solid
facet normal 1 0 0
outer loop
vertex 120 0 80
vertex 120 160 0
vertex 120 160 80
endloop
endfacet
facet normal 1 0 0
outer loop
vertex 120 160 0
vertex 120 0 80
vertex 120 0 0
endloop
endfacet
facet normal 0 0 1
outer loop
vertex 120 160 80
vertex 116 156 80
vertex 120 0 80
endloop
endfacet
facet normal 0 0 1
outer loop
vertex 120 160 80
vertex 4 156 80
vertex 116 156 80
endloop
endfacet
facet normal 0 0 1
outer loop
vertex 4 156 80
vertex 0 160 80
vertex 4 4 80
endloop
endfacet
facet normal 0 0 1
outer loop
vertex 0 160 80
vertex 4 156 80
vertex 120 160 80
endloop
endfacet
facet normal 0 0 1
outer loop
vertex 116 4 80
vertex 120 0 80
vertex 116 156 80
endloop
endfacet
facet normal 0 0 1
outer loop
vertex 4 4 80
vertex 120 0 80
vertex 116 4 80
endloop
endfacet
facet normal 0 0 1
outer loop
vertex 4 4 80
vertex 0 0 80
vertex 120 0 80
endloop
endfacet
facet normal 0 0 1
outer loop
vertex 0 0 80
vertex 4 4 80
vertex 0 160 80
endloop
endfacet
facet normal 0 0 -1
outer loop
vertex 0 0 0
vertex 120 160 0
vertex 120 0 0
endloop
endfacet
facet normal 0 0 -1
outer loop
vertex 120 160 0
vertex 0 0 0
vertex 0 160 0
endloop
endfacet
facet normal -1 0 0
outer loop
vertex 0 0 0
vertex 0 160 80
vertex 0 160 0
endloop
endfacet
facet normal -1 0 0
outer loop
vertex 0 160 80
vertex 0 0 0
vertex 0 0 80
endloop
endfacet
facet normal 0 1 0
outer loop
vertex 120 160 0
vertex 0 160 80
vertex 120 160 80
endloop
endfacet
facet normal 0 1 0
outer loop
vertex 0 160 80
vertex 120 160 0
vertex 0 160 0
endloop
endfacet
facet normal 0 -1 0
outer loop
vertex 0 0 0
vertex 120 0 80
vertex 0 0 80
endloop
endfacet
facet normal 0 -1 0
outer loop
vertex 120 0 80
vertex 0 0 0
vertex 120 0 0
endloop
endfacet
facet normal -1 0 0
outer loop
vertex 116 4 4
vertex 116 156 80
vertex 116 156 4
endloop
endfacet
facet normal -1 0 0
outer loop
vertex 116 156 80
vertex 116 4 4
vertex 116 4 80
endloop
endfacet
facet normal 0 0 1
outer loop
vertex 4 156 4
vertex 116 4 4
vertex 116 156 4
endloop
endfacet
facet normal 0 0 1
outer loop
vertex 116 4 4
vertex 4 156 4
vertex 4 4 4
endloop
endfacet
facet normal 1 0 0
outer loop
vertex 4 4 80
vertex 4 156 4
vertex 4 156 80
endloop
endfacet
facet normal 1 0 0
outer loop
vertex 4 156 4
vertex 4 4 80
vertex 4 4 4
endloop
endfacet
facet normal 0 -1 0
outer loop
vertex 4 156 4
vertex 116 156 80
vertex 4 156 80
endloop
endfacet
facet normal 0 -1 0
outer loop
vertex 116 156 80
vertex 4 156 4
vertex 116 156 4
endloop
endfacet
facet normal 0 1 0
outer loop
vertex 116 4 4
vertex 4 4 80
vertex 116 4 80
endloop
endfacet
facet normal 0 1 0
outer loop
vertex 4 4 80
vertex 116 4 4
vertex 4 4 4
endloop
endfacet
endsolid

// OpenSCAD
// Box width (horizontal axis) in centimeters (including side walls)
width = 12;

// Box height (vertical axis) in centimeters (including bottom)
height = 8;

// Box length (horizontal axis) in centimeters (including side walls)
length = 16;

// Wall thickness in millimeters
thickness = 4;

difference() {
  cube([width * 10, length * 10, height * 10]);
  translate([thickness, thickness, thickness]) {
    cube([width * 10 - thickness * 2, length * 10 - thickness * 2, height * 10]);
  }
}
